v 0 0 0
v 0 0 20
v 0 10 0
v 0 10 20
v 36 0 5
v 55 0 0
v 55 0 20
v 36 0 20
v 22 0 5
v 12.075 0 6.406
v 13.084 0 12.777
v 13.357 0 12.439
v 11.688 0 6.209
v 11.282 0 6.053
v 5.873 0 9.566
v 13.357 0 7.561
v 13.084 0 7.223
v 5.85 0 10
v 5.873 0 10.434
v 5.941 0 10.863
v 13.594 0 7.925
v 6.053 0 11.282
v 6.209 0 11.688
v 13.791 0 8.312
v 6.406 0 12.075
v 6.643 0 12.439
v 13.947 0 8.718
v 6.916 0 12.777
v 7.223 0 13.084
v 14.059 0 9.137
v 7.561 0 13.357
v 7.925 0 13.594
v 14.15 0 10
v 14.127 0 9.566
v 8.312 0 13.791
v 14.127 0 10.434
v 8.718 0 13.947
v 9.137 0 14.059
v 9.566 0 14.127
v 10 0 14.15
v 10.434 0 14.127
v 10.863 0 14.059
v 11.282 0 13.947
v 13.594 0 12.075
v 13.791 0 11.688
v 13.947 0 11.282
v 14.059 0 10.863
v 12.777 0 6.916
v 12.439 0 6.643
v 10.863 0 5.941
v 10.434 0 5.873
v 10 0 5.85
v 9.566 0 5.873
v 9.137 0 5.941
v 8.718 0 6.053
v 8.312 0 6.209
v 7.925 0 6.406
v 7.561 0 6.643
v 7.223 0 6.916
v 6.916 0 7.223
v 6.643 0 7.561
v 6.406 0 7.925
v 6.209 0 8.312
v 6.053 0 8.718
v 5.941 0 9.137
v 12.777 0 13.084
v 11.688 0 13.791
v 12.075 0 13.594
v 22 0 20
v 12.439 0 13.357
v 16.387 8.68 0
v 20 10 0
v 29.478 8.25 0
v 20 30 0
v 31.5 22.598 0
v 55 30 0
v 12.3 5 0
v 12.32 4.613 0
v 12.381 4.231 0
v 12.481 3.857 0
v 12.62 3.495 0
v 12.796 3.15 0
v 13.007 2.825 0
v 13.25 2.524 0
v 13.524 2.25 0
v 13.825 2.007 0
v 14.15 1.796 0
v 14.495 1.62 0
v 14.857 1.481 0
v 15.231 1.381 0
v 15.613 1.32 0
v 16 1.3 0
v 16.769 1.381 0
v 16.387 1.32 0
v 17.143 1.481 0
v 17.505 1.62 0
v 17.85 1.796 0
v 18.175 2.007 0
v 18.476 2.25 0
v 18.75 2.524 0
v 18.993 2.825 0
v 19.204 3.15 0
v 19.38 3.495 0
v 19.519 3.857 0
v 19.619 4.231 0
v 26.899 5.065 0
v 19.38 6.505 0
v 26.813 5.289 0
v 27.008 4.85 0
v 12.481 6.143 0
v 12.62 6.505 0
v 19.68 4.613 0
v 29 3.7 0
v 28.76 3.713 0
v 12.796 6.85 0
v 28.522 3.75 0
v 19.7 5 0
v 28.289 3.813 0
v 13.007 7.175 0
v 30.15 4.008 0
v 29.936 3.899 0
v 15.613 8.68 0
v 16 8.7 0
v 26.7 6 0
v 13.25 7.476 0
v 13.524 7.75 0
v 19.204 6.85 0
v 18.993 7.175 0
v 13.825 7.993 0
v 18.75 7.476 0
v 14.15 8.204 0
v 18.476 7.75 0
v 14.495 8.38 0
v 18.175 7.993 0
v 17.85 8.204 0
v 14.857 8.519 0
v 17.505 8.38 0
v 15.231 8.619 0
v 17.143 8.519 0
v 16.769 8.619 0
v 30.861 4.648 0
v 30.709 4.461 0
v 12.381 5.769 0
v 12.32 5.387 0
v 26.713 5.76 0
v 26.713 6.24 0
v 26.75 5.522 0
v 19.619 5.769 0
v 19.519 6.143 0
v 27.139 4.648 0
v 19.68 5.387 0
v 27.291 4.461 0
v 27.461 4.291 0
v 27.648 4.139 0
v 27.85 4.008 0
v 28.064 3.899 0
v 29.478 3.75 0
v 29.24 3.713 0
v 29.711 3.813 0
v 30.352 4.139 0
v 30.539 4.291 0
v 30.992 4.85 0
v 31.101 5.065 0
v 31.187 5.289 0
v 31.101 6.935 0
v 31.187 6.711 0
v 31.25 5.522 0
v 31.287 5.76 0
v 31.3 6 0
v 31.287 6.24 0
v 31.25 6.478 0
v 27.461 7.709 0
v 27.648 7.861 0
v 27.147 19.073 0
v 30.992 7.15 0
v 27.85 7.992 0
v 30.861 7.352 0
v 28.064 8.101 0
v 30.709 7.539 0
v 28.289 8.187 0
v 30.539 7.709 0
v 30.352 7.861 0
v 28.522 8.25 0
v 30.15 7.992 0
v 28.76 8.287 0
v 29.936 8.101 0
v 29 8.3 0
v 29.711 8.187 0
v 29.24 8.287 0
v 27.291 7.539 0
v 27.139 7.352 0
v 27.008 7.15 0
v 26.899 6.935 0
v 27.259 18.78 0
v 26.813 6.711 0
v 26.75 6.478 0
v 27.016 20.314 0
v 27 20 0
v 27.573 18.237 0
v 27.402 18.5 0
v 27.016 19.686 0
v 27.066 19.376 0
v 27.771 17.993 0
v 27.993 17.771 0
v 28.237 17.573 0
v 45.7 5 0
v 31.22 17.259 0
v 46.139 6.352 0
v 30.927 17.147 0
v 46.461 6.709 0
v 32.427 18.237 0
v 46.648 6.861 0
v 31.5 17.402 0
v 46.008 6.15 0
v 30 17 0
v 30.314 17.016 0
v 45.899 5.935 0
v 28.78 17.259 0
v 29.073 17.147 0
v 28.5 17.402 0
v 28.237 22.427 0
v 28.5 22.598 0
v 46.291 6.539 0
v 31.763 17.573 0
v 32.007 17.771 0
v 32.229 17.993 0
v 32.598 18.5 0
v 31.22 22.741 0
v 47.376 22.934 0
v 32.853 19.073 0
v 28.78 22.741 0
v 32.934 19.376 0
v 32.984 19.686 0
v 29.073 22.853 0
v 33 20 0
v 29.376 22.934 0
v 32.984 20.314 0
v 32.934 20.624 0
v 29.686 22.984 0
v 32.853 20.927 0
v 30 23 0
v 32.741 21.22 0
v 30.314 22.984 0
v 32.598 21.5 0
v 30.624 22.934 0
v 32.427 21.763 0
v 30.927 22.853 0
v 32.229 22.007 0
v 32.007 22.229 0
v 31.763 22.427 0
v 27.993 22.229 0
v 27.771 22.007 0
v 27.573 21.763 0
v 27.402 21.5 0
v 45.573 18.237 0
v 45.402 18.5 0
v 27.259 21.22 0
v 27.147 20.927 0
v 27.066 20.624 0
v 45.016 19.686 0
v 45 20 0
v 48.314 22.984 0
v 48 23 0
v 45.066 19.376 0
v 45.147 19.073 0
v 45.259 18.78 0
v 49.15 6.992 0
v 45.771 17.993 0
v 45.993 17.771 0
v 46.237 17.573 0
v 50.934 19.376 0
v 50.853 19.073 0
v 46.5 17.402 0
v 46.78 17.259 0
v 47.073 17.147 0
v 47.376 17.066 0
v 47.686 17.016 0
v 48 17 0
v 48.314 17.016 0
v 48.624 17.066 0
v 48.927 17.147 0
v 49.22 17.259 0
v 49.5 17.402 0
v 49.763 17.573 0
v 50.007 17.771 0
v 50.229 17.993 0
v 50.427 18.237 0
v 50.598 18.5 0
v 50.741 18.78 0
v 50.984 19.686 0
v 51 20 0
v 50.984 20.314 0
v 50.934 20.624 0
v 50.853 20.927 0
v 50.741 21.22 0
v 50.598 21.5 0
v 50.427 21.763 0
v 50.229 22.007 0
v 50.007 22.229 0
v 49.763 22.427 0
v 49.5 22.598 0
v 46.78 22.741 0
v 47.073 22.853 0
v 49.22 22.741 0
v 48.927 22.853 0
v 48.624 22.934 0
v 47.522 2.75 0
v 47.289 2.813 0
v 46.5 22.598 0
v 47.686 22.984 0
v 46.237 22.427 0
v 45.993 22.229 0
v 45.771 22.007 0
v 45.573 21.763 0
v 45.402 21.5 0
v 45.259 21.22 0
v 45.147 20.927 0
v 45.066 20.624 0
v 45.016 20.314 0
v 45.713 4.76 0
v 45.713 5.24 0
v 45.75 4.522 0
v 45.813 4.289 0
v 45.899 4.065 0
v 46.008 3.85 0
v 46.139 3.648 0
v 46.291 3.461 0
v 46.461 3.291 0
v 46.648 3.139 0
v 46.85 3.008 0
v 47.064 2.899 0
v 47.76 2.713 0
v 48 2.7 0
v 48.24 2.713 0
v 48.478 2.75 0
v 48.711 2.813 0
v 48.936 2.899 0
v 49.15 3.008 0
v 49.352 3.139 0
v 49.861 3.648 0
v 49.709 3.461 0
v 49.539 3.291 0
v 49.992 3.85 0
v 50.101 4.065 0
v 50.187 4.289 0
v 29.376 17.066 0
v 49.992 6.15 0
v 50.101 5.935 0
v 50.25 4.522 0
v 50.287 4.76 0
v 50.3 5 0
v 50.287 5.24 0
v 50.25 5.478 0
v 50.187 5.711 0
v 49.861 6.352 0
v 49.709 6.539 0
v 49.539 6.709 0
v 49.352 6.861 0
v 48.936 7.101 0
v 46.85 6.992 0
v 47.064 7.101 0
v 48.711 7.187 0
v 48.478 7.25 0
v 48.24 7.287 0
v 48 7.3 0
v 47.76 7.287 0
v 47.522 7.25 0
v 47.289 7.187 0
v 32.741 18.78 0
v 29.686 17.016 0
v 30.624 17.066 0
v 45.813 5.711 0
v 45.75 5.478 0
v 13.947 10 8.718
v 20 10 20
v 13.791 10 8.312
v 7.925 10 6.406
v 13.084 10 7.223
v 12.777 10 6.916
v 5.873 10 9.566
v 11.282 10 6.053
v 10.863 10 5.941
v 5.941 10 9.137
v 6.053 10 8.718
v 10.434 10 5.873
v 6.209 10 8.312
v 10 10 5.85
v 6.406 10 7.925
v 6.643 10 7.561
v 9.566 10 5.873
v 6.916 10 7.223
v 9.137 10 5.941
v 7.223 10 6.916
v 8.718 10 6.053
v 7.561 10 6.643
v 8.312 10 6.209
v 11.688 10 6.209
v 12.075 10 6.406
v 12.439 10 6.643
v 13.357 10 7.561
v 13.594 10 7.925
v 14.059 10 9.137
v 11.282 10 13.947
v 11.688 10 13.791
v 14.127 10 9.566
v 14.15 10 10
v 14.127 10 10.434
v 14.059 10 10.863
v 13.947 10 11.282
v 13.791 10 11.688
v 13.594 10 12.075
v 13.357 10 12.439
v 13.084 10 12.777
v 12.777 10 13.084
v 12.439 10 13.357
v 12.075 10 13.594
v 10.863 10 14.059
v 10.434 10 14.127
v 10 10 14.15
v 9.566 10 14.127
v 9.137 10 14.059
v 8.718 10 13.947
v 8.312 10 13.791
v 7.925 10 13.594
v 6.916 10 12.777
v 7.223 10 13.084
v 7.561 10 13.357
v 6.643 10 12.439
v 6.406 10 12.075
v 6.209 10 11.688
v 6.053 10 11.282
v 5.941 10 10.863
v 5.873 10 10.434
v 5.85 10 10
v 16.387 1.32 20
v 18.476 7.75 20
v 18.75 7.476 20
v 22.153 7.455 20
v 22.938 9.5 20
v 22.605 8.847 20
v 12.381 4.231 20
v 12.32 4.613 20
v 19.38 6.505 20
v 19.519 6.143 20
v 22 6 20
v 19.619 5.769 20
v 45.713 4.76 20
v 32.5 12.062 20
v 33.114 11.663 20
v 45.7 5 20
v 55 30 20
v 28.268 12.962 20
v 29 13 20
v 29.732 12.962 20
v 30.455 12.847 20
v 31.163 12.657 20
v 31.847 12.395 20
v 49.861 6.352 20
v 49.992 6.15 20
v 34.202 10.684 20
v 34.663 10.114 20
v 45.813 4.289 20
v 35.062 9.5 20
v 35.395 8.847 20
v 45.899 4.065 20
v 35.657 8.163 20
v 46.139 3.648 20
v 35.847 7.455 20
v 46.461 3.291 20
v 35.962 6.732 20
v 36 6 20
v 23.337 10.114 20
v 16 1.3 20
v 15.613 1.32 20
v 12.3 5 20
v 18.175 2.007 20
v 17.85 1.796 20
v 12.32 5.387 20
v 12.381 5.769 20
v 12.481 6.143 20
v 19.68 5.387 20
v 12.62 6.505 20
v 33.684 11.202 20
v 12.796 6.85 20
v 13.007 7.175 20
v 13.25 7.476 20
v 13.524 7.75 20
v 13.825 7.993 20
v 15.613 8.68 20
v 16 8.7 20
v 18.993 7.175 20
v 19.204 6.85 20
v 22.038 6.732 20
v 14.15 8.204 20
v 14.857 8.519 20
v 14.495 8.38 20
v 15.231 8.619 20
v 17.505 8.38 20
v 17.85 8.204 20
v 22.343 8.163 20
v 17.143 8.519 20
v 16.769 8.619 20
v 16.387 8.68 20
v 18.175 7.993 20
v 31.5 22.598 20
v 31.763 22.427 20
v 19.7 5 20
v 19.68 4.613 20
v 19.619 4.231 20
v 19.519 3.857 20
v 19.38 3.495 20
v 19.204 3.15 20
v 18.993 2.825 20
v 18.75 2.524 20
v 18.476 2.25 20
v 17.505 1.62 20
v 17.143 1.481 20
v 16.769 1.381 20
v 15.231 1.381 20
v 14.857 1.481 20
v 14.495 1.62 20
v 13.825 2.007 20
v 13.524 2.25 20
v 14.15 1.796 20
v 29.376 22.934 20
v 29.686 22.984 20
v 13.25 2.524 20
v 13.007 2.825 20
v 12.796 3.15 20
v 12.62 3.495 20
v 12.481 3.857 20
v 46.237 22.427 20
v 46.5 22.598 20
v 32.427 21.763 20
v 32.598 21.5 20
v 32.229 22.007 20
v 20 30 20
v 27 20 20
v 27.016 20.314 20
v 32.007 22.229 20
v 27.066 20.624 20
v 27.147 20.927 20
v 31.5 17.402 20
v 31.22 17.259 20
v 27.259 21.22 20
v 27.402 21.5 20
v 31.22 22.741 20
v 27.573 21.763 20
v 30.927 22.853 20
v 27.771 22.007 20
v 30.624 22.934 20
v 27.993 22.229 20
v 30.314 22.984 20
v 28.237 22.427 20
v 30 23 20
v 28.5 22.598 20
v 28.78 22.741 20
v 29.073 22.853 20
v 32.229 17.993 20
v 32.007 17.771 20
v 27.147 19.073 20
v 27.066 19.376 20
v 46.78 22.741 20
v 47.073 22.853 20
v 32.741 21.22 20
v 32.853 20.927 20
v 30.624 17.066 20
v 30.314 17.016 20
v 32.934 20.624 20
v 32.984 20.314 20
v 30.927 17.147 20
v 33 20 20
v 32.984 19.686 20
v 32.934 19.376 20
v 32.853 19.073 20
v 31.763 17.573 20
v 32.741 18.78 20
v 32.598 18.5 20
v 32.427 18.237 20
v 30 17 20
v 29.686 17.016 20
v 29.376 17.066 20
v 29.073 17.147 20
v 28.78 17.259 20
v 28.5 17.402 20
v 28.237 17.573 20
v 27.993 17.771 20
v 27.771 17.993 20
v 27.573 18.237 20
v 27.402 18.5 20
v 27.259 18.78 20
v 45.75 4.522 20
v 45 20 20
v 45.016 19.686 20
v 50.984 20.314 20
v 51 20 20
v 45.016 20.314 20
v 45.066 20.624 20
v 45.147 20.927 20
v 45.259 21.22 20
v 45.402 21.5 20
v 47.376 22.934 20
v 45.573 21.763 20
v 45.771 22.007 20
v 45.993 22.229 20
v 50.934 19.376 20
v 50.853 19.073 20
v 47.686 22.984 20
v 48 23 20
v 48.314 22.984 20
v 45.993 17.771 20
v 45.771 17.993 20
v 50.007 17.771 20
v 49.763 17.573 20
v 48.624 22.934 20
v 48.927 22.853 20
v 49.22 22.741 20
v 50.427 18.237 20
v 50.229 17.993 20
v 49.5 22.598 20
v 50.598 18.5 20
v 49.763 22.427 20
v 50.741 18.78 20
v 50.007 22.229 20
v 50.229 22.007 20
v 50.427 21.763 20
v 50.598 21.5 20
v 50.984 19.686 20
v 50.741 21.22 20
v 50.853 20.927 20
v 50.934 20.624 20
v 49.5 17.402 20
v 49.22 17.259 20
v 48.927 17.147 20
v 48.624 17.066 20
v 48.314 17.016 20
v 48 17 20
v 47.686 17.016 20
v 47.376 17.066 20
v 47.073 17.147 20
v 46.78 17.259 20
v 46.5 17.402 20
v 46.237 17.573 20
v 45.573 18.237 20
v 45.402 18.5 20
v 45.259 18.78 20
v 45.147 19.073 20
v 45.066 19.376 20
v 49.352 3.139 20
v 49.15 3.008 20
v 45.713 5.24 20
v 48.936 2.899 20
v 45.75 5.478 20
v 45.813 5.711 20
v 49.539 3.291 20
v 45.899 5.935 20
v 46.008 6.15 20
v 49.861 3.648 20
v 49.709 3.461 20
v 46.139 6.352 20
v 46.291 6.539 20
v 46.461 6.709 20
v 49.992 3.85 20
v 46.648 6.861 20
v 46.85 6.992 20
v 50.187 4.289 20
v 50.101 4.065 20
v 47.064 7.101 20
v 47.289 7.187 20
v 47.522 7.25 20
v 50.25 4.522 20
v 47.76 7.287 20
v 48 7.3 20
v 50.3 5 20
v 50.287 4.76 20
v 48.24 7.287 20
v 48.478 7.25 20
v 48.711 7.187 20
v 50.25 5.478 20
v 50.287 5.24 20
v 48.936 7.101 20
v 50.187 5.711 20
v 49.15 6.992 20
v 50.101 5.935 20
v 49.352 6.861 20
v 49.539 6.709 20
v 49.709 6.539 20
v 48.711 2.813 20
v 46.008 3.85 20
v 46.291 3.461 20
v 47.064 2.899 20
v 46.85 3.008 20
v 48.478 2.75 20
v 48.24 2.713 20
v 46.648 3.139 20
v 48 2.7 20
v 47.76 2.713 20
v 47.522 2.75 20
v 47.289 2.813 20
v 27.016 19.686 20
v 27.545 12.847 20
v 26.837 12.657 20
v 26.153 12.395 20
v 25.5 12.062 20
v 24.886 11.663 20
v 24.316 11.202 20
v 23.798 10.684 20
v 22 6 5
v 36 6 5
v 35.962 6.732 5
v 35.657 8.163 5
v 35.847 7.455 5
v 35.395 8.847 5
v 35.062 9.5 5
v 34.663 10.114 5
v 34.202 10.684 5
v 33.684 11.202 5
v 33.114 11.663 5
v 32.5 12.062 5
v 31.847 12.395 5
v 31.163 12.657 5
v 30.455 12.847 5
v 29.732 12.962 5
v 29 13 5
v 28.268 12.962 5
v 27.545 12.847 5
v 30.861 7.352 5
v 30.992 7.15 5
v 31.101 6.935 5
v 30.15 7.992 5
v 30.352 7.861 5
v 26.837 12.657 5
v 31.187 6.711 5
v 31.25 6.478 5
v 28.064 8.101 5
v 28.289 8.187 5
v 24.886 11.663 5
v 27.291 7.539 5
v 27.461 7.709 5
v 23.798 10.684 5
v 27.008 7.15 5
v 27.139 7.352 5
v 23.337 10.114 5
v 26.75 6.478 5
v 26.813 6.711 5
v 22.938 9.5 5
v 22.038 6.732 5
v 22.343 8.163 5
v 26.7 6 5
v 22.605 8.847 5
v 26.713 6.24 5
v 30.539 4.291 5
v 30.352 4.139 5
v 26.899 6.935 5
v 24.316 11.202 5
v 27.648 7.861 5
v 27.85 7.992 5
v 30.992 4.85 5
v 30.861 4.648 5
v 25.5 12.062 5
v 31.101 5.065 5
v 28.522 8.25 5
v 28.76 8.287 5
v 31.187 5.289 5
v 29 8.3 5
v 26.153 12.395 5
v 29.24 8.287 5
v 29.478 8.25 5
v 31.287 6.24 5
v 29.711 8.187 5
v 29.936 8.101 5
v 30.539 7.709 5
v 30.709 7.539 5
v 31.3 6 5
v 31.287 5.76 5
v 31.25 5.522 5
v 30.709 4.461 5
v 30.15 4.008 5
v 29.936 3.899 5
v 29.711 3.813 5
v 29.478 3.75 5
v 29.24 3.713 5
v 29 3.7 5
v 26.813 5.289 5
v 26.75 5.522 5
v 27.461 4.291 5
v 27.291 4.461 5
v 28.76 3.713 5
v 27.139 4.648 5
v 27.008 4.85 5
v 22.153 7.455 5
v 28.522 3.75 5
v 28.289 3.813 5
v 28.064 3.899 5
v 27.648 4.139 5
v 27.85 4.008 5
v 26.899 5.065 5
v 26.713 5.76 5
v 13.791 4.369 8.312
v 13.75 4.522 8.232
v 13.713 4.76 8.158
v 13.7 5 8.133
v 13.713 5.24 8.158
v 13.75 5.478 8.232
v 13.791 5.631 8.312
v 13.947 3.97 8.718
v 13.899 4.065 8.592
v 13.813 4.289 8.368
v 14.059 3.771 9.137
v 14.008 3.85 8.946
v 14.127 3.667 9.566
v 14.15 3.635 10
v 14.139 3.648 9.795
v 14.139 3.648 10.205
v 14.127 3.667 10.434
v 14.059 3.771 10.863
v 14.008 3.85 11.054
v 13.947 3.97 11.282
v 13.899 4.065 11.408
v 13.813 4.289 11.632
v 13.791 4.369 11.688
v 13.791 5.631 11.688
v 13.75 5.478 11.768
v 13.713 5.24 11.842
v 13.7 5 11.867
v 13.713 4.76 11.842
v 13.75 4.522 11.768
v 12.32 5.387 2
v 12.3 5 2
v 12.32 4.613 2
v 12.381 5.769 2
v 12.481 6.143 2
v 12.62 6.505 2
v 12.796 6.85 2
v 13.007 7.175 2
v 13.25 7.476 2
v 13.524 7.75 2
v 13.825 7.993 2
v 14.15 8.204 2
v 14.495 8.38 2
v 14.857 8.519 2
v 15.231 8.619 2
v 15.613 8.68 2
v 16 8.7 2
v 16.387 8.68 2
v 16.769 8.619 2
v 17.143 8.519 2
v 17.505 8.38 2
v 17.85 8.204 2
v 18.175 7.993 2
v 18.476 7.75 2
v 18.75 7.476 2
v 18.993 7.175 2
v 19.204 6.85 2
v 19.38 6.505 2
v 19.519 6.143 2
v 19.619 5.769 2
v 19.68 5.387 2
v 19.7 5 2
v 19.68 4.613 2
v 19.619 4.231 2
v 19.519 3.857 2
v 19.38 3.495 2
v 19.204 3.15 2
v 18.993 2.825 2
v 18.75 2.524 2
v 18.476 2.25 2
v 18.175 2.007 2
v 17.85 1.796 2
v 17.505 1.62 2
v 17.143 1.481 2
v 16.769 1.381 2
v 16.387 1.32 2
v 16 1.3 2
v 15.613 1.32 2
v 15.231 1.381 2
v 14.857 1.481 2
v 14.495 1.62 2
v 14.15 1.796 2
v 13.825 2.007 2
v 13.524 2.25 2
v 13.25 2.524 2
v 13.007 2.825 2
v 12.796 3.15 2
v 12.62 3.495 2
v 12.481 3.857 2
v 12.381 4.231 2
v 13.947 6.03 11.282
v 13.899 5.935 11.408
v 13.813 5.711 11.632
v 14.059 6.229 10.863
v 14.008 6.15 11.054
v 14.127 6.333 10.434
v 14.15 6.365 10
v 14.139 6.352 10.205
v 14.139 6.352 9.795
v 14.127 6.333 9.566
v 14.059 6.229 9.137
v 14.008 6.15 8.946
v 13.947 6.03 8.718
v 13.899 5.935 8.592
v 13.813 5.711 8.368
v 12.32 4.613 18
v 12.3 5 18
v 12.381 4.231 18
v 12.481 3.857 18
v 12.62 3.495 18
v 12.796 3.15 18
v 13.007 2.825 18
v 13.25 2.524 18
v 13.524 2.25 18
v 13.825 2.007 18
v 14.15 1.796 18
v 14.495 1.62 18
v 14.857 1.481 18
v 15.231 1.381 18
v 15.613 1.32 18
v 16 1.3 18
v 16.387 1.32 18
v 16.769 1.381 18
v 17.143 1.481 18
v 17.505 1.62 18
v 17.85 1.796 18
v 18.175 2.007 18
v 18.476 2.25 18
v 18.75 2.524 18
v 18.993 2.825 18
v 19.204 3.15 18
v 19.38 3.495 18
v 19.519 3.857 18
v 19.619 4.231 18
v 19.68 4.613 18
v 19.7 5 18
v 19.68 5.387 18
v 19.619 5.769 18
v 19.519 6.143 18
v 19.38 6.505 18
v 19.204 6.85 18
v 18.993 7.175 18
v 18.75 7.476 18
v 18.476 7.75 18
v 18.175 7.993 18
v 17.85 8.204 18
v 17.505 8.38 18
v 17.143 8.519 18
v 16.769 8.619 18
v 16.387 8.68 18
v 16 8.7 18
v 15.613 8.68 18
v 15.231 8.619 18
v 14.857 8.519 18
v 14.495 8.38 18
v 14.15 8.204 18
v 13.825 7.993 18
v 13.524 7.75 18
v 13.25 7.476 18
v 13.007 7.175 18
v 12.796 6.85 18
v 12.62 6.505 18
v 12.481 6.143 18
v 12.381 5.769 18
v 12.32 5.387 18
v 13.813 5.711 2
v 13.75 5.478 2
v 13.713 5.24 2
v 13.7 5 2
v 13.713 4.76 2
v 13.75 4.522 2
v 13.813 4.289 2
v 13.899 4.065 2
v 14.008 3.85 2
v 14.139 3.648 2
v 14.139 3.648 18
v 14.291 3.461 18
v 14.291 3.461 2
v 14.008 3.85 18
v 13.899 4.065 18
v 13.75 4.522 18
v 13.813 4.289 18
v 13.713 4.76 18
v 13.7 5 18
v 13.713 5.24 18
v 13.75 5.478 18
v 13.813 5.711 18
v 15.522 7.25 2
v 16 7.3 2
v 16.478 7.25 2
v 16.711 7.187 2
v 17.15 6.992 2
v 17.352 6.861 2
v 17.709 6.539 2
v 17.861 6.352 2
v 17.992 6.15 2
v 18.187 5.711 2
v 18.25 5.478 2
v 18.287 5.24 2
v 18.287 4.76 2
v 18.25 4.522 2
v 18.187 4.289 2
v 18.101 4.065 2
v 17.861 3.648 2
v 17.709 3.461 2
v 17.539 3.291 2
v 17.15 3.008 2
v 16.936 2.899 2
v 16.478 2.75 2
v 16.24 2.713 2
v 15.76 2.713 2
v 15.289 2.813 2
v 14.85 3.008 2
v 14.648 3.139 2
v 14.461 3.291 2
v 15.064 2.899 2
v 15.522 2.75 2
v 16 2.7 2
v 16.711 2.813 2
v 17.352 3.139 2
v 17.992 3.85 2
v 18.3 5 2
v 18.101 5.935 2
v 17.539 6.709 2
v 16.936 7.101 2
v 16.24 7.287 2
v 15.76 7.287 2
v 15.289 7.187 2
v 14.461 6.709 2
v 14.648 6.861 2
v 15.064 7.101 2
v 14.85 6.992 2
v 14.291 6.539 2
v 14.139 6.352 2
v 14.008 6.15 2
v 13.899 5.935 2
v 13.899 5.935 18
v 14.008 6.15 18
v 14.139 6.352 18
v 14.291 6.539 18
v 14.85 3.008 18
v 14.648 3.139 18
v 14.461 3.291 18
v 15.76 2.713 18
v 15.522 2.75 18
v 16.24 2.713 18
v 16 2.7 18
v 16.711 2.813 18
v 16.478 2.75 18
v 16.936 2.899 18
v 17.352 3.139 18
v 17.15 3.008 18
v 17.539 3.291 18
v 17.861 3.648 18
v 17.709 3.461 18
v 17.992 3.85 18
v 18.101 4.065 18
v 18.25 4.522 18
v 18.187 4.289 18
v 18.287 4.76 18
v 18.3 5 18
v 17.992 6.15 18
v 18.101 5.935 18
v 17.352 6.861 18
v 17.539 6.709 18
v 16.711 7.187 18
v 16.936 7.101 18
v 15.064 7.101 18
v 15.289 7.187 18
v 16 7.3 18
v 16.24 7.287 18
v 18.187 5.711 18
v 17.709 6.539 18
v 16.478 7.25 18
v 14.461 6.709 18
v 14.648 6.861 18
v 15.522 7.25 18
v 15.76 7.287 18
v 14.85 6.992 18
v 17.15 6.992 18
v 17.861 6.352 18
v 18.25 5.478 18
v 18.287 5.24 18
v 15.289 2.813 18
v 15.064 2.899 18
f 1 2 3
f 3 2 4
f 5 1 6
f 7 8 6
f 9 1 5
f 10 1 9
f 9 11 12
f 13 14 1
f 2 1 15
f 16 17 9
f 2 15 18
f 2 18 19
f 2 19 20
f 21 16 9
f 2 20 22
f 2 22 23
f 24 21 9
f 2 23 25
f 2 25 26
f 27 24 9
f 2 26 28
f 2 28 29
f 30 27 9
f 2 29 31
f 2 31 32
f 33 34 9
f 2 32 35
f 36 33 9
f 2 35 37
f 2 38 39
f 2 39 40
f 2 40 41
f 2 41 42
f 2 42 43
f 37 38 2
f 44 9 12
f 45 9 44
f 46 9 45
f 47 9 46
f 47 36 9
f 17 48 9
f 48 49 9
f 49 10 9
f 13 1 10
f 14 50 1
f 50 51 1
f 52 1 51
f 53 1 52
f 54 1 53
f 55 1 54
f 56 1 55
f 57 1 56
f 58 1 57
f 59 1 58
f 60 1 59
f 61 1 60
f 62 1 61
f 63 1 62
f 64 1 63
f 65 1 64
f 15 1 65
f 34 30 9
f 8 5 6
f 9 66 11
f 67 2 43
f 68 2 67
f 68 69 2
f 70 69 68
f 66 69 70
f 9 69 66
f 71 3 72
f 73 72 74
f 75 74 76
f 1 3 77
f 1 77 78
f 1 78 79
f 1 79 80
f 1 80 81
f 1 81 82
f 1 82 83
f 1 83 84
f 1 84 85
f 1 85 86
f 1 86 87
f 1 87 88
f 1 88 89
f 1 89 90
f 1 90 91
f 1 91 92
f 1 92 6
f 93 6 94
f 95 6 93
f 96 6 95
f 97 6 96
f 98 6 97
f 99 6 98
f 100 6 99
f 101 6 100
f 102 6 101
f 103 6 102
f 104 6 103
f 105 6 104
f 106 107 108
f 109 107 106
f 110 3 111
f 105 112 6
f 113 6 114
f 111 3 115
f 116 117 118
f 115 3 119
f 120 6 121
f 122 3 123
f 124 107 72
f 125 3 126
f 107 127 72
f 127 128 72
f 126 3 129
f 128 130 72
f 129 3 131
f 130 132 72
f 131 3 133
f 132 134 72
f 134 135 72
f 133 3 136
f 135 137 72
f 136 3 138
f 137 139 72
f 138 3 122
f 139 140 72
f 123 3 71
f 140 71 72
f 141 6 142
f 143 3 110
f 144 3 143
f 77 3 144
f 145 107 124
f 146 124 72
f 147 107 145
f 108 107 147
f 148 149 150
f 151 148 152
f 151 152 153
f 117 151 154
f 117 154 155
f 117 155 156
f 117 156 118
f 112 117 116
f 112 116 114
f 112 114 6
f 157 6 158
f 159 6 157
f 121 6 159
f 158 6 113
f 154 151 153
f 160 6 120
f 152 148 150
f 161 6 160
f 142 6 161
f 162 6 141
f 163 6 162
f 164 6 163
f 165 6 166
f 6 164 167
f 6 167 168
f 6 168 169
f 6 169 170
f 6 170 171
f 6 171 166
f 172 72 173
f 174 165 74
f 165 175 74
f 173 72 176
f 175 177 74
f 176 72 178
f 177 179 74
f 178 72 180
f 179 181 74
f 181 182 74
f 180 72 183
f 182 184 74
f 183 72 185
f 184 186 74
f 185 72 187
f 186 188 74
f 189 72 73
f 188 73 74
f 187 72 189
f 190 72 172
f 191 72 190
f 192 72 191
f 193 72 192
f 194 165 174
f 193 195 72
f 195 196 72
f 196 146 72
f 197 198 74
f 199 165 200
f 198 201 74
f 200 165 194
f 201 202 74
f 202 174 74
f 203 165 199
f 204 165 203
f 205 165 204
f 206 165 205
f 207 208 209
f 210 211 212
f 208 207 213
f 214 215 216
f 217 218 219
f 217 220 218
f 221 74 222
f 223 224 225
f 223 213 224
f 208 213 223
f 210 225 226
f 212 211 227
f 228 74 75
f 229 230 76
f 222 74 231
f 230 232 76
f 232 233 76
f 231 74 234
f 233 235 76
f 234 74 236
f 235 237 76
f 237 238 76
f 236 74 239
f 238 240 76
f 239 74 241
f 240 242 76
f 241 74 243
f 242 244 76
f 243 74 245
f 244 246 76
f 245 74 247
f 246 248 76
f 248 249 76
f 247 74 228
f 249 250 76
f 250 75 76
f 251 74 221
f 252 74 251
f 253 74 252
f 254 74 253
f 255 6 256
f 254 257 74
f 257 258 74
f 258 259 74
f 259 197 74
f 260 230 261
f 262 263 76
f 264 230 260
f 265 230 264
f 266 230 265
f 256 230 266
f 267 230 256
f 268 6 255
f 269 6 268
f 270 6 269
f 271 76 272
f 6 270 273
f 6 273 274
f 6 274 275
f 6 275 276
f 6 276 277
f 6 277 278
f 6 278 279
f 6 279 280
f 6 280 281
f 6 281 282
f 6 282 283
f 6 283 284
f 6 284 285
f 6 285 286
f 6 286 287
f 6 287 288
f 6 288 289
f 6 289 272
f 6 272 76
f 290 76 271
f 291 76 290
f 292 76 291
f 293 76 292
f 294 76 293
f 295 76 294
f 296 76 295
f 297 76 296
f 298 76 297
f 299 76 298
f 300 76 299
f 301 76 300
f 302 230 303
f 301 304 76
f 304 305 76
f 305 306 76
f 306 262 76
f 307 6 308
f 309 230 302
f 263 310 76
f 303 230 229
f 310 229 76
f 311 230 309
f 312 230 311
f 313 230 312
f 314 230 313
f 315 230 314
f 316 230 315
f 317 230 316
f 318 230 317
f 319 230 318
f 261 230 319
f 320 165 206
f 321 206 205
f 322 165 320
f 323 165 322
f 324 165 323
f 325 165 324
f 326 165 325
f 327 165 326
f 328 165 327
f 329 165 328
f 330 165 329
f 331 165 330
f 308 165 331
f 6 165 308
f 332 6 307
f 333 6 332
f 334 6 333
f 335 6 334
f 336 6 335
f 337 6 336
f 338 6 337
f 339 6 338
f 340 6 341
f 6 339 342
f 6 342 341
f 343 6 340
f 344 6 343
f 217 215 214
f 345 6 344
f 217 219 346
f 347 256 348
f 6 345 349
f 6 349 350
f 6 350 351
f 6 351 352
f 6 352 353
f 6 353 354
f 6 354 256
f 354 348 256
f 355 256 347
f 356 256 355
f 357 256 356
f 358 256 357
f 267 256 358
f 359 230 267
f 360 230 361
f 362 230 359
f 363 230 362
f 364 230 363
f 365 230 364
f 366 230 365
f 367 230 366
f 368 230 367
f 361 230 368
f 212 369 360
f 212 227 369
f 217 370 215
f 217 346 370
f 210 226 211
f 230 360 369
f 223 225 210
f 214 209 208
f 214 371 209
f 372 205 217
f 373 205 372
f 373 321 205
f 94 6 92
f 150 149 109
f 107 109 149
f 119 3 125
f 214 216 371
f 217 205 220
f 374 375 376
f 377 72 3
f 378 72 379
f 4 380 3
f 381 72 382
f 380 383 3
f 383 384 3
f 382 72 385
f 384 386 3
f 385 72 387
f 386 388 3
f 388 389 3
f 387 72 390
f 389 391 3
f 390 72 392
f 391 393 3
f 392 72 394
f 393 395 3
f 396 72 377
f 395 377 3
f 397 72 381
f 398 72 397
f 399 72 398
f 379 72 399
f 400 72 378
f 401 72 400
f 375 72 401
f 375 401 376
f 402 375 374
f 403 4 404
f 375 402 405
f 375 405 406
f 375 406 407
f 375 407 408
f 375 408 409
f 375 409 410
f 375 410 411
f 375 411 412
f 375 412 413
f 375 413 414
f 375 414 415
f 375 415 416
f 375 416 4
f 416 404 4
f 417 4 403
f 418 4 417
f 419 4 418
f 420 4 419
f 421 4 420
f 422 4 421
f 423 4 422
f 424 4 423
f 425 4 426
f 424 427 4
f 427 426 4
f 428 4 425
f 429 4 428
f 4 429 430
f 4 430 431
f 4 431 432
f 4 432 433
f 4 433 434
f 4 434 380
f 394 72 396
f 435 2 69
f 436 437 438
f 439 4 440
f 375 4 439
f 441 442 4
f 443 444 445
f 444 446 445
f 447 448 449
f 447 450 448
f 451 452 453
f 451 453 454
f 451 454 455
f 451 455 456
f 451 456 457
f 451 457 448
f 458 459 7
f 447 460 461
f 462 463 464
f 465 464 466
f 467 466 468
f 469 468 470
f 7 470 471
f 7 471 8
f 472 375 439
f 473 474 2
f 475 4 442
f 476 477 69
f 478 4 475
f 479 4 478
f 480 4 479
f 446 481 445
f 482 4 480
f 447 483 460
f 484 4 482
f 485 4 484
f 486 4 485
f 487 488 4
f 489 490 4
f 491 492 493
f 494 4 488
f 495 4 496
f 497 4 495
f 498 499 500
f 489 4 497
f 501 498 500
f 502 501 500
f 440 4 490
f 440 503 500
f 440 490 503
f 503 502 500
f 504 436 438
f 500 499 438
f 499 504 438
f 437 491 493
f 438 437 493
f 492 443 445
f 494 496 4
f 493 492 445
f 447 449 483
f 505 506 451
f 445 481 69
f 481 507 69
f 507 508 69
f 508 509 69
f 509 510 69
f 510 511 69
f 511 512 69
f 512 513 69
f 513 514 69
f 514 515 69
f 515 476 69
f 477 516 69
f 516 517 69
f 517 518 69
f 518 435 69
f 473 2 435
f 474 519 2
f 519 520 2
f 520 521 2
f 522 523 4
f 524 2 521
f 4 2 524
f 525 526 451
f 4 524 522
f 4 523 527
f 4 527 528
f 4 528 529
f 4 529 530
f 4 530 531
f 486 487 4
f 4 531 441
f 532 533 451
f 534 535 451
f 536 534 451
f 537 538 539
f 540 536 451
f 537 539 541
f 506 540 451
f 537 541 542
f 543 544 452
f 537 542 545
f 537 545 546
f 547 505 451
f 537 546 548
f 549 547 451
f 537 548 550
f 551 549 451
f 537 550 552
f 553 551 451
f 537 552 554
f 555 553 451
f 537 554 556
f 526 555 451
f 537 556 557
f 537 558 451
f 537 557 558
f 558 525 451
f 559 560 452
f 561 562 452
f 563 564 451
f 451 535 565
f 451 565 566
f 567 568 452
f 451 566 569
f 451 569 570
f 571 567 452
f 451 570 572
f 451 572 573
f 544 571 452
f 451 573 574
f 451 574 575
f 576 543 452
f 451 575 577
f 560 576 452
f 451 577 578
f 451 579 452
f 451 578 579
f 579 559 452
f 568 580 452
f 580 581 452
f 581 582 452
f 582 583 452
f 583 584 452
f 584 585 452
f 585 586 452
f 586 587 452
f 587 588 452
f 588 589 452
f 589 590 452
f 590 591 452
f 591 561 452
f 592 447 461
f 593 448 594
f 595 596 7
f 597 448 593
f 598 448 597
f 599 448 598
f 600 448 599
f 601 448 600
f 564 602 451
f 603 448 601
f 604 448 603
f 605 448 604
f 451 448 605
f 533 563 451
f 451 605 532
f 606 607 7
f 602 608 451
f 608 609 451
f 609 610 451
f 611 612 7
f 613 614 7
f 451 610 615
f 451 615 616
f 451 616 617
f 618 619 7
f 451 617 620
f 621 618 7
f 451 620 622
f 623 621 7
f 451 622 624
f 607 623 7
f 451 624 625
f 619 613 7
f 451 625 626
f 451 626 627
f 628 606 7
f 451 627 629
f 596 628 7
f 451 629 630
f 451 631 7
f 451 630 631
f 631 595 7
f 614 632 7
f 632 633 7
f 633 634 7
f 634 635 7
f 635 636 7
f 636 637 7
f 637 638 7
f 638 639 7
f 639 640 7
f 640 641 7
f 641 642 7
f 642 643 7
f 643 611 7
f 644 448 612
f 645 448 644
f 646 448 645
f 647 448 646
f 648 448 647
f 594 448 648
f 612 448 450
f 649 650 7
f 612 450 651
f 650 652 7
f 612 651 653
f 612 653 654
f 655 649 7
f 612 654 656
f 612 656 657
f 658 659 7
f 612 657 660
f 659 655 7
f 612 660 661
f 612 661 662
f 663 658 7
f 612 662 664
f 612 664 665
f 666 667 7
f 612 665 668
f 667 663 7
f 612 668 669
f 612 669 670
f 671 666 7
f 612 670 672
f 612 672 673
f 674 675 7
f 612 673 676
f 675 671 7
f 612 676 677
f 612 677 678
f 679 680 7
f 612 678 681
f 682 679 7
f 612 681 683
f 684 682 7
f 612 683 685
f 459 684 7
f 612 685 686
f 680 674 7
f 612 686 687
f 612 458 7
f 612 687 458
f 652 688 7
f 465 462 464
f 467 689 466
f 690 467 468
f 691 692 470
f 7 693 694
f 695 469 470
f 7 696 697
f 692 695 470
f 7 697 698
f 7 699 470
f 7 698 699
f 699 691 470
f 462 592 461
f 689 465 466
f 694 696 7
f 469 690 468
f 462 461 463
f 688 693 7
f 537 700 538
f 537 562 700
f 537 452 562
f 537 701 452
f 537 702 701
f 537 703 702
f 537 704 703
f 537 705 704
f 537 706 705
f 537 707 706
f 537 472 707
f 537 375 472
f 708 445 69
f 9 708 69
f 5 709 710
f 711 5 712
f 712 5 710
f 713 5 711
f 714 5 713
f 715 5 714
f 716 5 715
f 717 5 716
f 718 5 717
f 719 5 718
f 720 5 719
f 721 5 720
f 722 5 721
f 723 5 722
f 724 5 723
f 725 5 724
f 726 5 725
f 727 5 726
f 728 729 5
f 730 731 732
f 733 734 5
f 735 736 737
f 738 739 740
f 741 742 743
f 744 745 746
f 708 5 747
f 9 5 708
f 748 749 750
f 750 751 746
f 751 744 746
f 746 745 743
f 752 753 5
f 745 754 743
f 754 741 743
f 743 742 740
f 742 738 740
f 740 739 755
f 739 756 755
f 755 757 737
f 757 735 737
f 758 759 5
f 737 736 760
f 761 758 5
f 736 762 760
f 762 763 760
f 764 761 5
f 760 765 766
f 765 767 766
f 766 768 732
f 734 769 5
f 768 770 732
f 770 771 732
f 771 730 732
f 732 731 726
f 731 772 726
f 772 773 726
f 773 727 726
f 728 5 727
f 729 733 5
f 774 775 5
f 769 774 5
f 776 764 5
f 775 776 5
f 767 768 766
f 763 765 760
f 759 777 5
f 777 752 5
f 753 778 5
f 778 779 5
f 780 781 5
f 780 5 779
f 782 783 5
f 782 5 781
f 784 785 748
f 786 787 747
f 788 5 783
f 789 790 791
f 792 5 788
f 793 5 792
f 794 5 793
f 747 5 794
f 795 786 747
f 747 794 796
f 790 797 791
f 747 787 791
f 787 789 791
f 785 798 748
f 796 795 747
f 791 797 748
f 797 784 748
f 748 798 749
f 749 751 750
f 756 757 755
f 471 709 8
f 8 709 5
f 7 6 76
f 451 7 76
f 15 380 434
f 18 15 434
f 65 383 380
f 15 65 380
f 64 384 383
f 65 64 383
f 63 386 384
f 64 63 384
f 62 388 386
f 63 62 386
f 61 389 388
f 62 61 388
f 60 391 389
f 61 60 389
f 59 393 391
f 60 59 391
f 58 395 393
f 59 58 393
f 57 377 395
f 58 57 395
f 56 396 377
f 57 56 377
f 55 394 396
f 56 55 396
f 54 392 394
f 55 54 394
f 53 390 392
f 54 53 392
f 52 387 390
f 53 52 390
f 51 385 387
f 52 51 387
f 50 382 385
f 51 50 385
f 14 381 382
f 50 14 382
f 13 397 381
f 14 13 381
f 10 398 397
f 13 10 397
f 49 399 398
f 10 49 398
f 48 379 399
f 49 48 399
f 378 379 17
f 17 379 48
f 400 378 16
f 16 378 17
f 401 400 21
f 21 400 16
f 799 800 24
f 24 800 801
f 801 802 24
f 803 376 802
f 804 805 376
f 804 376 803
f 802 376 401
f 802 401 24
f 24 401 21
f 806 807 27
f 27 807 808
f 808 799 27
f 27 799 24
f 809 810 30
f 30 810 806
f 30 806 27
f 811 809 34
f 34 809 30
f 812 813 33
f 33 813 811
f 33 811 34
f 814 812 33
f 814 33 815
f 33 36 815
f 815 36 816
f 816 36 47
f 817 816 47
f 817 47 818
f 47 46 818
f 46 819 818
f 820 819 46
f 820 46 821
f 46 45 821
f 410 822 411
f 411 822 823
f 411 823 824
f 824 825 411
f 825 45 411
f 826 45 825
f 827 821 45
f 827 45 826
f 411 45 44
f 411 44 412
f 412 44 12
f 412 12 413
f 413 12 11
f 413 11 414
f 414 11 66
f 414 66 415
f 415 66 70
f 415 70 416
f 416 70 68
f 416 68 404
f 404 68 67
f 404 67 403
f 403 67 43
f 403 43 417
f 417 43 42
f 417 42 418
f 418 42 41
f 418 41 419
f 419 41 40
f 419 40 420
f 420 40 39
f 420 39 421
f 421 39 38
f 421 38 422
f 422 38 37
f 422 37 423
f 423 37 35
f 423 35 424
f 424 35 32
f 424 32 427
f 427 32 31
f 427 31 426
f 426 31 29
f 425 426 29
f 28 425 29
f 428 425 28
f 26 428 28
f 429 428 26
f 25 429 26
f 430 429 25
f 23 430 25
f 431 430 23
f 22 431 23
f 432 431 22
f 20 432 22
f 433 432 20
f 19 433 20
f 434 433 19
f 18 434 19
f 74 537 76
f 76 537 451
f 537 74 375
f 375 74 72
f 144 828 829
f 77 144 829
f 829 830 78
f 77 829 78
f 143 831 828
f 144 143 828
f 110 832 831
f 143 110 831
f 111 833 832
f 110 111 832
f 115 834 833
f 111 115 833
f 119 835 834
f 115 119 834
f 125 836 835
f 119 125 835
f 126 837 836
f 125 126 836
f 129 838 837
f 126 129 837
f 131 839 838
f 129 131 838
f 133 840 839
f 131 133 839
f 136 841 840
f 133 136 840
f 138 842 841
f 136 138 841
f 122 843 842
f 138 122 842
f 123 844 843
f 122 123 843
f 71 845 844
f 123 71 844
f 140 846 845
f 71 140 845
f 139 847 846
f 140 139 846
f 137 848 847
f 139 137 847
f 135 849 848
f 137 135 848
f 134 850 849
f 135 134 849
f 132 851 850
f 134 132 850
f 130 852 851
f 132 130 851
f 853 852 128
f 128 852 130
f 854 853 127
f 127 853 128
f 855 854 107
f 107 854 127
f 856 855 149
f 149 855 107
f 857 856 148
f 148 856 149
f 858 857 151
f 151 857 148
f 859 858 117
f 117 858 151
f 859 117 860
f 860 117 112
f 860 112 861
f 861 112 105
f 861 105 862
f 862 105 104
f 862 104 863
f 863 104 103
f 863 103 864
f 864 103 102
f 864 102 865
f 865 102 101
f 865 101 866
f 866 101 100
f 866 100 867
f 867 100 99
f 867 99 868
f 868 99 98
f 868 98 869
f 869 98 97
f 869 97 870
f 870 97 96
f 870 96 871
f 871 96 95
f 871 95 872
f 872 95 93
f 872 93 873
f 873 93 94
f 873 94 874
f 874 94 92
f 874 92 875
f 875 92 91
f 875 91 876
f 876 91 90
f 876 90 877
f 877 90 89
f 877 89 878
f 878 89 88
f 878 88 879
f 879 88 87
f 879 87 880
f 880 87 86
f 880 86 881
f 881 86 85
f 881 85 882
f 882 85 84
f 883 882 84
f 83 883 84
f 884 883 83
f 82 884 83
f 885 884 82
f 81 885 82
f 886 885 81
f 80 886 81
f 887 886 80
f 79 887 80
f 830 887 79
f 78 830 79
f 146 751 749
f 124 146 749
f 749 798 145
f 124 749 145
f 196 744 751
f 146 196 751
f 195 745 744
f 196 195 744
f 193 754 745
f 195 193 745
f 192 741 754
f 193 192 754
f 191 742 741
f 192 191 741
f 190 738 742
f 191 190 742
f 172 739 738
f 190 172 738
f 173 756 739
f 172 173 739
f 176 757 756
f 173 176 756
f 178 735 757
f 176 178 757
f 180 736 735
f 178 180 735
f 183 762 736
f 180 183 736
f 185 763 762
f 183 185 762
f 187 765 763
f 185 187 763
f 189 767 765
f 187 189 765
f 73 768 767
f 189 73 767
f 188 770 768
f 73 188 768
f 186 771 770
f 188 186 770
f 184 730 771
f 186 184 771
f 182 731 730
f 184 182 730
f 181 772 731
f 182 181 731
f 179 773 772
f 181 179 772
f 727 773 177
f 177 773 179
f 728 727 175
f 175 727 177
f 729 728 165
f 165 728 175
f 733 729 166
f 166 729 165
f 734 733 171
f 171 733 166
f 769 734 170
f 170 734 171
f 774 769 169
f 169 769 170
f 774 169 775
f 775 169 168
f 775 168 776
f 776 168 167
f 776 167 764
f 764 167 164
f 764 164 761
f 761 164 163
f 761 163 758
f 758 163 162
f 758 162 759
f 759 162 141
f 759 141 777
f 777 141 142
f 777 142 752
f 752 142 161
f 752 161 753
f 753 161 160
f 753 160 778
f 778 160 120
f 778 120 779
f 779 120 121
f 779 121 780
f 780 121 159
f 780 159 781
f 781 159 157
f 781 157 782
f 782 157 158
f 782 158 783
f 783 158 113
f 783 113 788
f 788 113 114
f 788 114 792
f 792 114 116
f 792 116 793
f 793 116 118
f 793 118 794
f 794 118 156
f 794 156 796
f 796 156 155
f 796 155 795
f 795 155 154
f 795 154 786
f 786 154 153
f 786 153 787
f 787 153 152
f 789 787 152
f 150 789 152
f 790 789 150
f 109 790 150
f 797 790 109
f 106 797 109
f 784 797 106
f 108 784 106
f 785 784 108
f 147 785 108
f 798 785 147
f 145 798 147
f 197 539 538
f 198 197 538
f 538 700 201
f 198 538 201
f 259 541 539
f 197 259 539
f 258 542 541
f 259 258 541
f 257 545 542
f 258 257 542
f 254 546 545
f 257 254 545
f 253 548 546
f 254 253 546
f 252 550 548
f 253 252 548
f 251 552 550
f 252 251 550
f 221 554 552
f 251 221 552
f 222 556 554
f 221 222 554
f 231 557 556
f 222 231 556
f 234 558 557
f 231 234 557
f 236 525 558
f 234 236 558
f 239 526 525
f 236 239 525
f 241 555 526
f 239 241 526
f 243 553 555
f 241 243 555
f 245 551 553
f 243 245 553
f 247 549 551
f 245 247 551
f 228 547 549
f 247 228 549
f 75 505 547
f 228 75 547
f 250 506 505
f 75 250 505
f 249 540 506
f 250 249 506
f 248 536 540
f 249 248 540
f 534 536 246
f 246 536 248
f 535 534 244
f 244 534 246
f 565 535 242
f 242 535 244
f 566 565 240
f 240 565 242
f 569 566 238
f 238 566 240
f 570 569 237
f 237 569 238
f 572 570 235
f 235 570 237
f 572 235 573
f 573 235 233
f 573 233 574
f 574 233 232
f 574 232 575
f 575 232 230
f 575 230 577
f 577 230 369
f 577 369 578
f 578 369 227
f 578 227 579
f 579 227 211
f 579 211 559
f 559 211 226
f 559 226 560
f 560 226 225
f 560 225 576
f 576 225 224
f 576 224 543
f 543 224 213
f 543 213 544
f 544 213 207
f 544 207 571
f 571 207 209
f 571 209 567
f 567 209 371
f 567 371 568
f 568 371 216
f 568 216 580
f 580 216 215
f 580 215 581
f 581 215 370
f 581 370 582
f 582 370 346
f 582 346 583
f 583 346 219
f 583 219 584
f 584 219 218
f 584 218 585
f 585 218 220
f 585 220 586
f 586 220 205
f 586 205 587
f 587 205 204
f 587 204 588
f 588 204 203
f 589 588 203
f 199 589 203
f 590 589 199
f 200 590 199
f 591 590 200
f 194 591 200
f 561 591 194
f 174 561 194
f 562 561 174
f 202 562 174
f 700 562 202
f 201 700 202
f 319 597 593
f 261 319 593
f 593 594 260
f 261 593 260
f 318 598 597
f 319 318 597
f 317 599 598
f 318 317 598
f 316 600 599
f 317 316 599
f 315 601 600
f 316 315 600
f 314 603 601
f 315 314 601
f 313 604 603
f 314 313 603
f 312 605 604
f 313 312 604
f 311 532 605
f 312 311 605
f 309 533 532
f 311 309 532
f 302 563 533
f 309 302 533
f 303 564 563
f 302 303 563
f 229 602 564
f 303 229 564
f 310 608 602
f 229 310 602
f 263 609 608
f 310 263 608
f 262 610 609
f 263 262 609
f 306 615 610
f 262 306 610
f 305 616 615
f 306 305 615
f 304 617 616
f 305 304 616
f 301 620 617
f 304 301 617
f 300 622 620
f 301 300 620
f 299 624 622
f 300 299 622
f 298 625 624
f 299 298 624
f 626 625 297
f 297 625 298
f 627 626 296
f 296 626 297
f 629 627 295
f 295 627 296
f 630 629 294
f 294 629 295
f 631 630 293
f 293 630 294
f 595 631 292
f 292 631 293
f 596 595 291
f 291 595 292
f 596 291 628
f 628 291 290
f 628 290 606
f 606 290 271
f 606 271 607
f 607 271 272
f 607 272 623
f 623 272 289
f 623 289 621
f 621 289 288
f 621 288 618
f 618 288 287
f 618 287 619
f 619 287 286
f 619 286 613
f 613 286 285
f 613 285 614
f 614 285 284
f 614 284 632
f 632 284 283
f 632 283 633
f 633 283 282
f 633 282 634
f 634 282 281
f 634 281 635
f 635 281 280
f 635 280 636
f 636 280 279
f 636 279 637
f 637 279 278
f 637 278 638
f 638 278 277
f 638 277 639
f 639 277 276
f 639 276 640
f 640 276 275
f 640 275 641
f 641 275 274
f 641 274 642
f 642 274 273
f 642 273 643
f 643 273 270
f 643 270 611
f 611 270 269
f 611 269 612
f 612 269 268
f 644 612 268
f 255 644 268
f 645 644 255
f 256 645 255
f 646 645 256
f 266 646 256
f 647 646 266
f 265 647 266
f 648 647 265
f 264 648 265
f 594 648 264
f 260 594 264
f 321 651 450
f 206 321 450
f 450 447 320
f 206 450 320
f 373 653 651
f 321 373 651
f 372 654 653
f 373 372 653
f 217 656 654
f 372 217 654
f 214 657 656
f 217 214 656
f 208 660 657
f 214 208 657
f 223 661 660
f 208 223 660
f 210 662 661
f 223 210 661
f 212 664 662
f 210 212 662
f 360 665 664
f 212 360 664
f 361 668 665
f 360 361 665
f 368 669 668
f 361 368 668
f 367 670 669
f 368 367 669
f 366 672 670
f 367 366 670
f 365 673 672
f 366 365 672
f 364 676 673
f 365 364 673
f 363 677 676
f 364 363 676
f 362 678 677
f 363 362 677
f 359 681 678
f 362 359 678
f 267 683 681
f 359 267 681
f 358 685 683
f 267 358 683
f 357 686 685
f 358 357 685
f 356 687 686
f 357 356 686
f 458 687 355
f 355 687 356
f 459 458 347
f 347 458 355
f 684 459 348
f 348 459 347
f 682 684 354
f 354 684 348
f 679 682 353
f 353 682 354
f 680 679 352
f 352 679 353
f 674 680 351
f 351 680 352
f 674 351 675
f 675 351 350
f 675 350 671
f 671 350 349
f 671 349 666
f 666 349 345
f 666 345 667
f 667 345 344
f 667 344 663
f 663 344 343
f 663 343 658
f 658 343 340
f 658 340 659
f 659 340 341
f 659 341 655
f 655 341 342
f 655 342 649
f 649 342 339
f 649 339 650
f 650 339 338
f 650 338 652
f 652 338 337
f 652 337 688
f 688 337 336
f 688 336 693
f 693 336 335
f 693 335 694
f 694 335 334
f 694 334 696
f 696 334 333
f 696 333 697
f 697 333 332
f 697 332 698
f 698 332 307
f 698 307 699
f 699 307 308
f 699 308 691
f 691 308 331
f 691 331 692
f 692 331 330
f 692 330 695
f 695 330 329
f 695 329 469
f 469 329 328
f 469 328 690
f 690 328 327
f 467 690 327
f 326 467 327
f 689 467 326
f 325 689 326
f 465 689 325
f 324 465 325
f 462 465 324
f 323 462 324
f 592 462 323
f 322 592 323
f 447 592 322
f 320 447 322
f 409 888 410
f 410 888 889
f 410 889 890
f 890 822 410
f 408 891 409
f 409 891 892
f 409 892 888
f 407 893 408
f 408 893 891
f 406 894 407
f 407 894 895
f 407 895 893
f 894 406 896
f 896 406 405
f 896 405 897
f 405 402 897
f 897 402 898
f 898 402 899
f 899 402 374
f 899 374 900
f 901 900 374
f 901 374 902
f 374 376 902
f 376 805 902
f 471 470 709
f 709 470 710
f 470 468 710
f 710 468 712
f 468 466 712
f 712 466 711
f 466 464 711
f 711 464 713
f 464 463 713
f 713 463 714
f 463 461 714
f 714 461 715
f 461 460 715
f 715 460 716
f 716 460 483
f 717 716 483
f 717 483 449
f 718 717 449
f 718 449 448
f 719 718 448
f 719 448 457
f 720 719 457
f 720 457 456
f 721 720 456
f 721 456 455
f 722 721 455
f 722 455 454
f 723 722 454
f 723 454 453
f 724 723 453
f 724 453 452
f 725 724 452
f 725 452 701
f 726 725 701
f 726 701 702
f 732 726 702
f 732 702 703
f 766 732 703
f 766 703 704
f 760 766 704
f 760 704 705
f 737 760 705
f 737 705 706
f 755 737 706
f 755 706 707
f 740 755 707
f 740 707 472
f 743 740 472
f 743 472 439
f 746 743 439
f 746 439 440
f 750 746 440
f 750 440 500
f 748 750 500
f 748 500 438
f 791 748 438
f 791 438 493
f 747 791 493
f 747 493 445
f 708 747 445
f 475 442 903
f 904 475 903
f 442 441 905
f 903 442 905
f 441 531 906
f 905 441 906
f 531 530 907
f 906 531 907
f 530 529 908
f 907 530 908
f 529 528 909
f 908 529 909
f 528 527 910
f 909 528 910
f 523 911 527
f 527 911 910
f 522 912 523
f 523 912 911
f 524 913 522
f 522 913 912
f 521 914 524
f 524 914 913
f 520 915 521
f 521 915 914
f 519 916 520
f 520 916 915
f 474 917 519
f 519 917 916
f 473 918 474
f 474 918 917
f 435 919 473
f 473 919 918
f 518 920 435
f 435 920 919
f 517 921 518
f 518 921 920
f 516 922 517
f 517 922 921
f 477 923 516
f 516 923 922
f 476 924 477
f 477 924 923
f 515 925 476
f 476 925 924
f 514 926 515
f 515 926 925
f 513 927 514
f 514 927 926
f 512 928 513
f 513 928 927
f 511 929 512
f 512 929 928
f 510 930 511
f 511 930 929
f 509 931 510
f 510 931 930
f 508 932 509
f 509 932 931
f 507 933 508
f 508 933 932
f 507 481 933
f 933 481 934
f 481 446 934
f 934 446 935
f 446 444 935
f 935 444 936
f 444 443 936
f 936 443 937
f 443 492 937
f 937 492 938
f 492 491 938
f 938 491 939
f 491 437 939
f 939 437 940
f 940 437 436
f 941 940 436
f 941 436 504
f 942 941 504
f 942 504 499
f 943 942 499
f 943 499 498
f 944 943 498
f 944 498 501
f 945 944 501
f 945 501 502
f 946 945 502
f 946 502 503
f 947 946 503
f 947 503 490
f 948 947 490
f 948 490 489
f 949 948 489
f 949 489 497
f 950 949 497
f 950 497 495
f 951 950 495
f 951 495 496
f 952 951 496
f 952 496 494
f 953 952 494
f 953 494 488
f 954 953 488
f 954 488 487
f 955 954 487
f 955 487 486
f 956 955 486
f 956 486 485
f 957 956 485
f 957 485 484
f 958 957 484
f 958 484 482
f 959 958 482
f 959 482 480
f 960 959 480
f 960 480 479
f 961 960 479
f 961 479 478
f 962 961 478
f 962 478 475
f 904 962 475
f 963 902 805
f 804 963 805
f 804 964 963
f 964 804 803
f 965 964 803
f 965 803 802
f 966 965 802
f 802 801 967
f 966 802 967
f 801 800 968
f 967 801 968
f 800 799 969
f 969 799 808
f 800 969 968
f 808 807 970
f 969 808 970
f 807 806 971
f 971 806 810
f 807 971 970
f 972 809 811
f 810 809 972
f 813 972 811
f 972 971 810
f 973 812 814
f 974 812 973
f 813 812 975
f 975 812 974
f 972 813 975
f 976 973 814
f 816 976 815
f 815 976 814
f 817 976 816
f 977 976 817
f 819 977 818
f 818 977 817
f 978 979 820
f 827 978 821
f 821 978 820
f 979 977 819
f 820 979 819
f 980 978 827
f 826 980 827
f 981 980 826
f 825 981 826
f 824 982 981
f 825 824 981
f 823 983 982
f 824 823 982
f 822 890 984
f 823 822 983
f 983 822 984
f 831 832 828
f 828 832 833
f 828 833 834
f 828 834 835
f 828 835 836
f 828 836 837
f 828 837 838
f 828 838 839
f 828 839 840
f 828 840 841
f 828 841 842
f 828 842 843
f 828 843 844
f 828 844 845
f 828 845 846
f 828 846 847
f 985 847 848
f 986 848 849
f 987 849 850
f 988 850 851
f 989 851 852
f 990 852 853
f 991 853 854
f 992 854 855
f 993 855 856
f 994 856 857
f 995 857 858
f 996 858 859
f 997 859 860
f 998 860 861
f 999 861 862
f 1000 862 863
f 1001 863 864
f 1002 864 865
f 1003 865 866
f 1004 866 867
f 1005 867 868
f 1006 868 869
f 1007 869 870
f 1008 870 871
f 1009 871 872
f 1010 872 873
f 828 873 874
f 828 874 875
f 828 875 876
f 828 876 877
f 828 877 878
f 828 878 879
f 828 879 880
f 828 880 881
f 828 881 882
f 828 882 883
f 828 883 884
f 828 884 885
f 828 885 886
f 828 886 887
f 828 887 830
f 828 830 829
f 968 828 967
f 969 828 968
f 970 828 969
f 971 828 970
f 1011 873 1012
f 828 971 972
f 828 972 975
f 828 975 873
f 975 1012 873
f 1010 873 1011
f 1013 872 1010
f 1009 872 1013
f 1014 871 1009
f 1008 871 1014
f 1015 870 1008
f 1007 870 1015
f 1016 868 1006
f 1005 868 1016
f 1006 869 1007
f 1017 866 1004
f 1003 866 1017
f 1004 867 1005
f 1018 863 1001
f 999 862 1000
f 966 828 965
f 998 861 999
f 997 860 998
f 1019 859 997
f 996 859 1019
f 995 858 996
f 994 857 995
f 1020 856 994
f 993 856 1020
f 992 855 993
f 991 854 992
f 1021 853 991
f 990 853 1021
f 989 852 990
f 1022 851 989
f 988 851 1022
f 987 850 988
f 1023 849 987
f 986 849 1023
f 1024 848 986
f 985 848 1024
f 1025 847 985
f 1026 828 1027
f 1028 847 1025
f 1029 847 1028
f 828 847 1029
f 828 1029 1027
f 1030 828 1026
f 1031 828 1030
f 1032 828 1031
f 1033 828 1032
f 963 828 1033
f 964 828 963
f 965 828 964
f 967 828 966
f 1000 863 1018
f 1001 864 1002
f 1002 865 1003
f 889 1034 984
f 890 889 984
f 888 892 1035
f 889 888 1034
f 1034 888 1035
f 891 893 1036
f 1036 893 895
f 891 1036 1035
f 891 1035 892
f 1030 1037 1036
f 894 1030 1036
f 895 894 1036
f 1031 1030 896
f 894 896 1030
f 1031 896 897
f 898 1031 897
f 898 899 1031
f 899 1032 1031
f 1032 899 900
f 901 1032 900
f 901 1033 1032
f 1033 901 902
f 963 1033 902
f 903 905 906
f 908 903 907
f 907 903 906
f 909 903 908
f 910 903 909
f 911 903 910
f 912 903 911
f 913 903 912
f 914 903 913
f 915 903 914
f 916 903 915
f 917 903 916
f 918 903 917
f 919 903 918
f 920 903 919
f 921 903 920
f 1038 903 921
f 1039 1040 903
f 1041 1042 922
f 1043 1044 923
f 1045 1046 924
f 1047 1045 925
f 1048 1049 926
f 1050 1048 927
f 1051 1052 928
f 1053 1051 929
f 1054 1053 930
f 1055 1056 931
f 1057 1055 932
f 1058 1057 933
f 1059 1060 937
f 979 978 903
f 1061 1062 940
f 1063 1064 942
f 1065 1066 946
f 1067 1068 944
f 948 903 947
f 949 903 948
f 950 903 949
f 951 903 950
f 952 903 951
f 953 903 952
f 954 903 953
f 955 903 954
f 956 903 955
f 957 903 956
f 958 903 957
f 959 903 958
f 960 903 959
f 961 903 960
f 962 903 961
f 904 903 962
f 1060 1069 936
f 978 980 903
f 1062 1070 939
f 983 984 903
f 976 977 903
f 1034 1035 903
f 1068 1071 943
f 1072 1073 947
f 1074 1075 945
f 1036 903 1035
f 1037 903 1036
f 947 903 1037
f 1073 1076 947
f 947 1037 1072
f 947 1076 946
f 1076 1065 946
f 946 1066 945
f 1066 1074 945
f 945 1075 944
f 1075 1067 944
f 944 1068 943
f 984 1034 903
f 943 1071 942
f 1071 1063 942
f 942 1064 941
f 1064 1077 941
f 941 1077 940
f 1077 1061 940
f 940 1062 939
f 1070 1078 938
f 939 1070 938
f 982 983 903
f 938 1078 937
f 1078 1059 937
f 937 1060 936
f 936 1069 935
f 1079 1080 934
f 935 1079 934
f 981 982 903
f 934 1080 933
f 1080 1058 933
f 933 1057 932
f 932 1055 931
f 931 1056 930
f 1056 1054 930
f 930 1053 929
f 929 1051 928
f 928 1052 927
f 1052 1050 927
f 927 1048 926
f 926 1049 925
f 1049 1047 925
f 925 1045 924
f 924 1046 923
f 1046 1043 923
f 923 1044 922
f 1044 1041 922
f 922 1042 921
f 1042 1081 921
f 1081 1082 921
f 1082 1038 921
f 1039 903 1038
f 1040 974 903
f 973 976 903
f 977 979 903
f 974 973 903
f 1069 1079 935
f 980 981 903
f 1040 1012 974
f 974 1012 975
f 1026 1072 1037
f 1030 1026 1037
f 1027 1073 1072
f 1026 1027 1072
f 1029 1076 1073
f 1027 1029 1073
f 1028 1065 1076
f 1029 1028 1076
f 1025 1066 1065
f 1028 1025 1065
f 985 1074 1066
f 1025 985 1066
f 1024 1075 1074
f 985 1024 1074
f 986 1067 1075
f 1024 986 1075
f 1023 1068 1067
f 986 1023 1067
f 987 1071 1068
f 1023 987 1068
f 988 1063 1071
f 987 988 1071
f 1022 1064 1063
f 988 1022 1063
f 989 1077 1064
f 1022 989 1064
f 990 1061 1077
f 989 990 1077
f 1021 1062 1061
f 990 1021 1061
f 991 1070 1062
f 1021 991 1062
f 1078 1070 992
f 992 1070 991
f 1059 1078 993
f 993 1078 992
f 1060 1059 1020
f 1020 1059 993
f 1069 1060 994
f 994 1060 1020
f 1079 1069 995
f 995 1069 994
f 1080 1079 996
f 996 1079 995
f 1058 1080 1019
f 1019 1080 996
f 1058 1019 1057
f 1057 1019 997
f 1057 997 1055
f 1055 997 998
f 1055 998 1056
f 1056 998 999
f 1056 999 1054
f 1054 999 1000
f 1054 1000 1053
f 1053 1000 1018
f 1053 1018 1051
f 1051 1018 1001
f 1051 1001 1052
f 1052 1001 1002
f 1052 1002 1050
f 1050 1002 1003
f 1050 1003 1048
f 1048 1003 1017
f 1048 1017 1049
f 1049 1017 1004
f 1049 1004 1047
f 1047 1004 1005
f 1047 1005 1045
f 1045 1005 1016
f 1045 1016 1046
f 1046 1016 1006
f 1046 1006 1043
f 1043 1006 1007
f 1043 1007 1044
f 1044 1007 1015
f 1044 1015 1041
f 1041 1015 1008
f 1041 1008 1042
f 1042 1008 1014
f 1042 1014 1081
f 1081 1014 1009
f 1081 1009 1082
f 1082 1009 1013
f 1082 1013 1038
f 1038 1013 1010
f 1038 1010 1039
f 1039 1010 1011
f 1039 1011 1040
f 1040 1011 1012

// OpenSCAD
h1 = 20;		// Height body
h2 = 5;		// Height base
h3 = h1+2;	// Height cylinders
r1 = 4.15;		// Radio varilla lisa
r2 = 2.3;		// Radio tornillo M3
r3 = 11.2;	// Radio centro motor
r4 = 3;		// Radio tornillo M5
r5 = 7.6;		// Radio rodamiento lineal
r6 = 4.62;	// Radio tuerca M5
r7 = 2.3;		// Radio poleas
r8 = 3.7;		// Radio cabeza tornillo M3
L1 = 15;		// Longitud varilla lisa 8mm

module idler_hbot()
{
		union() {
			difference() {
				//Cuerpo principal
				cube([55, 30, h1]);
				
				//Hueco Perfil vertical
				translate([0, 10, 0]) cube([20, 20, h1]);
				
				//Hueco varilla lisa
				translate([10, L1, 10]) rotate(([90, 0, 0])) cylinder(h = (L1 + 1), r = r1, $fn=60);
				
				translate([22, 0, h2]) cube([14, 6, h1]);
				
				
				// Tornillos acople perfiles
				//translate([10, 30, -1])	cylinder(h = h3, r = r4, $fn=60);
				translate([10, 20, -1])	cylinder(h = h3, r = r4, $fn=60);
				
				translate([30, 20, -1])	cylinder(h = h3, r = r4, $fn=60);
				translate([48, 20, -1])	cylinder(h = h3, r = r4, $fn=60);
				translate([48, 5, -1])	cylinder(h = h3, r = r2, $fn=60);

				// Hueco tornillo polea
				translate([29, 6, -1]) cylinder(h = h3, r = r7, $fn=60);
				translate([29, 6, h2]) cylinder(h = h1, r = 7, $fn=60);

				translate([16, 5, -1]) cylinder(h = h3, r = r2, $fn=60);
				translate([16, 5, 0]) cylinder(h = 2, r = r8, $fn=60);
				translate([16, 5, (h1 - 2)]) cylinder(h = 2, r = r8, $fn=60);
			}
			//translate([20, 25, h2]) cube([10, 5,(h1-h2)]);

		}
}


idler_hbot();
